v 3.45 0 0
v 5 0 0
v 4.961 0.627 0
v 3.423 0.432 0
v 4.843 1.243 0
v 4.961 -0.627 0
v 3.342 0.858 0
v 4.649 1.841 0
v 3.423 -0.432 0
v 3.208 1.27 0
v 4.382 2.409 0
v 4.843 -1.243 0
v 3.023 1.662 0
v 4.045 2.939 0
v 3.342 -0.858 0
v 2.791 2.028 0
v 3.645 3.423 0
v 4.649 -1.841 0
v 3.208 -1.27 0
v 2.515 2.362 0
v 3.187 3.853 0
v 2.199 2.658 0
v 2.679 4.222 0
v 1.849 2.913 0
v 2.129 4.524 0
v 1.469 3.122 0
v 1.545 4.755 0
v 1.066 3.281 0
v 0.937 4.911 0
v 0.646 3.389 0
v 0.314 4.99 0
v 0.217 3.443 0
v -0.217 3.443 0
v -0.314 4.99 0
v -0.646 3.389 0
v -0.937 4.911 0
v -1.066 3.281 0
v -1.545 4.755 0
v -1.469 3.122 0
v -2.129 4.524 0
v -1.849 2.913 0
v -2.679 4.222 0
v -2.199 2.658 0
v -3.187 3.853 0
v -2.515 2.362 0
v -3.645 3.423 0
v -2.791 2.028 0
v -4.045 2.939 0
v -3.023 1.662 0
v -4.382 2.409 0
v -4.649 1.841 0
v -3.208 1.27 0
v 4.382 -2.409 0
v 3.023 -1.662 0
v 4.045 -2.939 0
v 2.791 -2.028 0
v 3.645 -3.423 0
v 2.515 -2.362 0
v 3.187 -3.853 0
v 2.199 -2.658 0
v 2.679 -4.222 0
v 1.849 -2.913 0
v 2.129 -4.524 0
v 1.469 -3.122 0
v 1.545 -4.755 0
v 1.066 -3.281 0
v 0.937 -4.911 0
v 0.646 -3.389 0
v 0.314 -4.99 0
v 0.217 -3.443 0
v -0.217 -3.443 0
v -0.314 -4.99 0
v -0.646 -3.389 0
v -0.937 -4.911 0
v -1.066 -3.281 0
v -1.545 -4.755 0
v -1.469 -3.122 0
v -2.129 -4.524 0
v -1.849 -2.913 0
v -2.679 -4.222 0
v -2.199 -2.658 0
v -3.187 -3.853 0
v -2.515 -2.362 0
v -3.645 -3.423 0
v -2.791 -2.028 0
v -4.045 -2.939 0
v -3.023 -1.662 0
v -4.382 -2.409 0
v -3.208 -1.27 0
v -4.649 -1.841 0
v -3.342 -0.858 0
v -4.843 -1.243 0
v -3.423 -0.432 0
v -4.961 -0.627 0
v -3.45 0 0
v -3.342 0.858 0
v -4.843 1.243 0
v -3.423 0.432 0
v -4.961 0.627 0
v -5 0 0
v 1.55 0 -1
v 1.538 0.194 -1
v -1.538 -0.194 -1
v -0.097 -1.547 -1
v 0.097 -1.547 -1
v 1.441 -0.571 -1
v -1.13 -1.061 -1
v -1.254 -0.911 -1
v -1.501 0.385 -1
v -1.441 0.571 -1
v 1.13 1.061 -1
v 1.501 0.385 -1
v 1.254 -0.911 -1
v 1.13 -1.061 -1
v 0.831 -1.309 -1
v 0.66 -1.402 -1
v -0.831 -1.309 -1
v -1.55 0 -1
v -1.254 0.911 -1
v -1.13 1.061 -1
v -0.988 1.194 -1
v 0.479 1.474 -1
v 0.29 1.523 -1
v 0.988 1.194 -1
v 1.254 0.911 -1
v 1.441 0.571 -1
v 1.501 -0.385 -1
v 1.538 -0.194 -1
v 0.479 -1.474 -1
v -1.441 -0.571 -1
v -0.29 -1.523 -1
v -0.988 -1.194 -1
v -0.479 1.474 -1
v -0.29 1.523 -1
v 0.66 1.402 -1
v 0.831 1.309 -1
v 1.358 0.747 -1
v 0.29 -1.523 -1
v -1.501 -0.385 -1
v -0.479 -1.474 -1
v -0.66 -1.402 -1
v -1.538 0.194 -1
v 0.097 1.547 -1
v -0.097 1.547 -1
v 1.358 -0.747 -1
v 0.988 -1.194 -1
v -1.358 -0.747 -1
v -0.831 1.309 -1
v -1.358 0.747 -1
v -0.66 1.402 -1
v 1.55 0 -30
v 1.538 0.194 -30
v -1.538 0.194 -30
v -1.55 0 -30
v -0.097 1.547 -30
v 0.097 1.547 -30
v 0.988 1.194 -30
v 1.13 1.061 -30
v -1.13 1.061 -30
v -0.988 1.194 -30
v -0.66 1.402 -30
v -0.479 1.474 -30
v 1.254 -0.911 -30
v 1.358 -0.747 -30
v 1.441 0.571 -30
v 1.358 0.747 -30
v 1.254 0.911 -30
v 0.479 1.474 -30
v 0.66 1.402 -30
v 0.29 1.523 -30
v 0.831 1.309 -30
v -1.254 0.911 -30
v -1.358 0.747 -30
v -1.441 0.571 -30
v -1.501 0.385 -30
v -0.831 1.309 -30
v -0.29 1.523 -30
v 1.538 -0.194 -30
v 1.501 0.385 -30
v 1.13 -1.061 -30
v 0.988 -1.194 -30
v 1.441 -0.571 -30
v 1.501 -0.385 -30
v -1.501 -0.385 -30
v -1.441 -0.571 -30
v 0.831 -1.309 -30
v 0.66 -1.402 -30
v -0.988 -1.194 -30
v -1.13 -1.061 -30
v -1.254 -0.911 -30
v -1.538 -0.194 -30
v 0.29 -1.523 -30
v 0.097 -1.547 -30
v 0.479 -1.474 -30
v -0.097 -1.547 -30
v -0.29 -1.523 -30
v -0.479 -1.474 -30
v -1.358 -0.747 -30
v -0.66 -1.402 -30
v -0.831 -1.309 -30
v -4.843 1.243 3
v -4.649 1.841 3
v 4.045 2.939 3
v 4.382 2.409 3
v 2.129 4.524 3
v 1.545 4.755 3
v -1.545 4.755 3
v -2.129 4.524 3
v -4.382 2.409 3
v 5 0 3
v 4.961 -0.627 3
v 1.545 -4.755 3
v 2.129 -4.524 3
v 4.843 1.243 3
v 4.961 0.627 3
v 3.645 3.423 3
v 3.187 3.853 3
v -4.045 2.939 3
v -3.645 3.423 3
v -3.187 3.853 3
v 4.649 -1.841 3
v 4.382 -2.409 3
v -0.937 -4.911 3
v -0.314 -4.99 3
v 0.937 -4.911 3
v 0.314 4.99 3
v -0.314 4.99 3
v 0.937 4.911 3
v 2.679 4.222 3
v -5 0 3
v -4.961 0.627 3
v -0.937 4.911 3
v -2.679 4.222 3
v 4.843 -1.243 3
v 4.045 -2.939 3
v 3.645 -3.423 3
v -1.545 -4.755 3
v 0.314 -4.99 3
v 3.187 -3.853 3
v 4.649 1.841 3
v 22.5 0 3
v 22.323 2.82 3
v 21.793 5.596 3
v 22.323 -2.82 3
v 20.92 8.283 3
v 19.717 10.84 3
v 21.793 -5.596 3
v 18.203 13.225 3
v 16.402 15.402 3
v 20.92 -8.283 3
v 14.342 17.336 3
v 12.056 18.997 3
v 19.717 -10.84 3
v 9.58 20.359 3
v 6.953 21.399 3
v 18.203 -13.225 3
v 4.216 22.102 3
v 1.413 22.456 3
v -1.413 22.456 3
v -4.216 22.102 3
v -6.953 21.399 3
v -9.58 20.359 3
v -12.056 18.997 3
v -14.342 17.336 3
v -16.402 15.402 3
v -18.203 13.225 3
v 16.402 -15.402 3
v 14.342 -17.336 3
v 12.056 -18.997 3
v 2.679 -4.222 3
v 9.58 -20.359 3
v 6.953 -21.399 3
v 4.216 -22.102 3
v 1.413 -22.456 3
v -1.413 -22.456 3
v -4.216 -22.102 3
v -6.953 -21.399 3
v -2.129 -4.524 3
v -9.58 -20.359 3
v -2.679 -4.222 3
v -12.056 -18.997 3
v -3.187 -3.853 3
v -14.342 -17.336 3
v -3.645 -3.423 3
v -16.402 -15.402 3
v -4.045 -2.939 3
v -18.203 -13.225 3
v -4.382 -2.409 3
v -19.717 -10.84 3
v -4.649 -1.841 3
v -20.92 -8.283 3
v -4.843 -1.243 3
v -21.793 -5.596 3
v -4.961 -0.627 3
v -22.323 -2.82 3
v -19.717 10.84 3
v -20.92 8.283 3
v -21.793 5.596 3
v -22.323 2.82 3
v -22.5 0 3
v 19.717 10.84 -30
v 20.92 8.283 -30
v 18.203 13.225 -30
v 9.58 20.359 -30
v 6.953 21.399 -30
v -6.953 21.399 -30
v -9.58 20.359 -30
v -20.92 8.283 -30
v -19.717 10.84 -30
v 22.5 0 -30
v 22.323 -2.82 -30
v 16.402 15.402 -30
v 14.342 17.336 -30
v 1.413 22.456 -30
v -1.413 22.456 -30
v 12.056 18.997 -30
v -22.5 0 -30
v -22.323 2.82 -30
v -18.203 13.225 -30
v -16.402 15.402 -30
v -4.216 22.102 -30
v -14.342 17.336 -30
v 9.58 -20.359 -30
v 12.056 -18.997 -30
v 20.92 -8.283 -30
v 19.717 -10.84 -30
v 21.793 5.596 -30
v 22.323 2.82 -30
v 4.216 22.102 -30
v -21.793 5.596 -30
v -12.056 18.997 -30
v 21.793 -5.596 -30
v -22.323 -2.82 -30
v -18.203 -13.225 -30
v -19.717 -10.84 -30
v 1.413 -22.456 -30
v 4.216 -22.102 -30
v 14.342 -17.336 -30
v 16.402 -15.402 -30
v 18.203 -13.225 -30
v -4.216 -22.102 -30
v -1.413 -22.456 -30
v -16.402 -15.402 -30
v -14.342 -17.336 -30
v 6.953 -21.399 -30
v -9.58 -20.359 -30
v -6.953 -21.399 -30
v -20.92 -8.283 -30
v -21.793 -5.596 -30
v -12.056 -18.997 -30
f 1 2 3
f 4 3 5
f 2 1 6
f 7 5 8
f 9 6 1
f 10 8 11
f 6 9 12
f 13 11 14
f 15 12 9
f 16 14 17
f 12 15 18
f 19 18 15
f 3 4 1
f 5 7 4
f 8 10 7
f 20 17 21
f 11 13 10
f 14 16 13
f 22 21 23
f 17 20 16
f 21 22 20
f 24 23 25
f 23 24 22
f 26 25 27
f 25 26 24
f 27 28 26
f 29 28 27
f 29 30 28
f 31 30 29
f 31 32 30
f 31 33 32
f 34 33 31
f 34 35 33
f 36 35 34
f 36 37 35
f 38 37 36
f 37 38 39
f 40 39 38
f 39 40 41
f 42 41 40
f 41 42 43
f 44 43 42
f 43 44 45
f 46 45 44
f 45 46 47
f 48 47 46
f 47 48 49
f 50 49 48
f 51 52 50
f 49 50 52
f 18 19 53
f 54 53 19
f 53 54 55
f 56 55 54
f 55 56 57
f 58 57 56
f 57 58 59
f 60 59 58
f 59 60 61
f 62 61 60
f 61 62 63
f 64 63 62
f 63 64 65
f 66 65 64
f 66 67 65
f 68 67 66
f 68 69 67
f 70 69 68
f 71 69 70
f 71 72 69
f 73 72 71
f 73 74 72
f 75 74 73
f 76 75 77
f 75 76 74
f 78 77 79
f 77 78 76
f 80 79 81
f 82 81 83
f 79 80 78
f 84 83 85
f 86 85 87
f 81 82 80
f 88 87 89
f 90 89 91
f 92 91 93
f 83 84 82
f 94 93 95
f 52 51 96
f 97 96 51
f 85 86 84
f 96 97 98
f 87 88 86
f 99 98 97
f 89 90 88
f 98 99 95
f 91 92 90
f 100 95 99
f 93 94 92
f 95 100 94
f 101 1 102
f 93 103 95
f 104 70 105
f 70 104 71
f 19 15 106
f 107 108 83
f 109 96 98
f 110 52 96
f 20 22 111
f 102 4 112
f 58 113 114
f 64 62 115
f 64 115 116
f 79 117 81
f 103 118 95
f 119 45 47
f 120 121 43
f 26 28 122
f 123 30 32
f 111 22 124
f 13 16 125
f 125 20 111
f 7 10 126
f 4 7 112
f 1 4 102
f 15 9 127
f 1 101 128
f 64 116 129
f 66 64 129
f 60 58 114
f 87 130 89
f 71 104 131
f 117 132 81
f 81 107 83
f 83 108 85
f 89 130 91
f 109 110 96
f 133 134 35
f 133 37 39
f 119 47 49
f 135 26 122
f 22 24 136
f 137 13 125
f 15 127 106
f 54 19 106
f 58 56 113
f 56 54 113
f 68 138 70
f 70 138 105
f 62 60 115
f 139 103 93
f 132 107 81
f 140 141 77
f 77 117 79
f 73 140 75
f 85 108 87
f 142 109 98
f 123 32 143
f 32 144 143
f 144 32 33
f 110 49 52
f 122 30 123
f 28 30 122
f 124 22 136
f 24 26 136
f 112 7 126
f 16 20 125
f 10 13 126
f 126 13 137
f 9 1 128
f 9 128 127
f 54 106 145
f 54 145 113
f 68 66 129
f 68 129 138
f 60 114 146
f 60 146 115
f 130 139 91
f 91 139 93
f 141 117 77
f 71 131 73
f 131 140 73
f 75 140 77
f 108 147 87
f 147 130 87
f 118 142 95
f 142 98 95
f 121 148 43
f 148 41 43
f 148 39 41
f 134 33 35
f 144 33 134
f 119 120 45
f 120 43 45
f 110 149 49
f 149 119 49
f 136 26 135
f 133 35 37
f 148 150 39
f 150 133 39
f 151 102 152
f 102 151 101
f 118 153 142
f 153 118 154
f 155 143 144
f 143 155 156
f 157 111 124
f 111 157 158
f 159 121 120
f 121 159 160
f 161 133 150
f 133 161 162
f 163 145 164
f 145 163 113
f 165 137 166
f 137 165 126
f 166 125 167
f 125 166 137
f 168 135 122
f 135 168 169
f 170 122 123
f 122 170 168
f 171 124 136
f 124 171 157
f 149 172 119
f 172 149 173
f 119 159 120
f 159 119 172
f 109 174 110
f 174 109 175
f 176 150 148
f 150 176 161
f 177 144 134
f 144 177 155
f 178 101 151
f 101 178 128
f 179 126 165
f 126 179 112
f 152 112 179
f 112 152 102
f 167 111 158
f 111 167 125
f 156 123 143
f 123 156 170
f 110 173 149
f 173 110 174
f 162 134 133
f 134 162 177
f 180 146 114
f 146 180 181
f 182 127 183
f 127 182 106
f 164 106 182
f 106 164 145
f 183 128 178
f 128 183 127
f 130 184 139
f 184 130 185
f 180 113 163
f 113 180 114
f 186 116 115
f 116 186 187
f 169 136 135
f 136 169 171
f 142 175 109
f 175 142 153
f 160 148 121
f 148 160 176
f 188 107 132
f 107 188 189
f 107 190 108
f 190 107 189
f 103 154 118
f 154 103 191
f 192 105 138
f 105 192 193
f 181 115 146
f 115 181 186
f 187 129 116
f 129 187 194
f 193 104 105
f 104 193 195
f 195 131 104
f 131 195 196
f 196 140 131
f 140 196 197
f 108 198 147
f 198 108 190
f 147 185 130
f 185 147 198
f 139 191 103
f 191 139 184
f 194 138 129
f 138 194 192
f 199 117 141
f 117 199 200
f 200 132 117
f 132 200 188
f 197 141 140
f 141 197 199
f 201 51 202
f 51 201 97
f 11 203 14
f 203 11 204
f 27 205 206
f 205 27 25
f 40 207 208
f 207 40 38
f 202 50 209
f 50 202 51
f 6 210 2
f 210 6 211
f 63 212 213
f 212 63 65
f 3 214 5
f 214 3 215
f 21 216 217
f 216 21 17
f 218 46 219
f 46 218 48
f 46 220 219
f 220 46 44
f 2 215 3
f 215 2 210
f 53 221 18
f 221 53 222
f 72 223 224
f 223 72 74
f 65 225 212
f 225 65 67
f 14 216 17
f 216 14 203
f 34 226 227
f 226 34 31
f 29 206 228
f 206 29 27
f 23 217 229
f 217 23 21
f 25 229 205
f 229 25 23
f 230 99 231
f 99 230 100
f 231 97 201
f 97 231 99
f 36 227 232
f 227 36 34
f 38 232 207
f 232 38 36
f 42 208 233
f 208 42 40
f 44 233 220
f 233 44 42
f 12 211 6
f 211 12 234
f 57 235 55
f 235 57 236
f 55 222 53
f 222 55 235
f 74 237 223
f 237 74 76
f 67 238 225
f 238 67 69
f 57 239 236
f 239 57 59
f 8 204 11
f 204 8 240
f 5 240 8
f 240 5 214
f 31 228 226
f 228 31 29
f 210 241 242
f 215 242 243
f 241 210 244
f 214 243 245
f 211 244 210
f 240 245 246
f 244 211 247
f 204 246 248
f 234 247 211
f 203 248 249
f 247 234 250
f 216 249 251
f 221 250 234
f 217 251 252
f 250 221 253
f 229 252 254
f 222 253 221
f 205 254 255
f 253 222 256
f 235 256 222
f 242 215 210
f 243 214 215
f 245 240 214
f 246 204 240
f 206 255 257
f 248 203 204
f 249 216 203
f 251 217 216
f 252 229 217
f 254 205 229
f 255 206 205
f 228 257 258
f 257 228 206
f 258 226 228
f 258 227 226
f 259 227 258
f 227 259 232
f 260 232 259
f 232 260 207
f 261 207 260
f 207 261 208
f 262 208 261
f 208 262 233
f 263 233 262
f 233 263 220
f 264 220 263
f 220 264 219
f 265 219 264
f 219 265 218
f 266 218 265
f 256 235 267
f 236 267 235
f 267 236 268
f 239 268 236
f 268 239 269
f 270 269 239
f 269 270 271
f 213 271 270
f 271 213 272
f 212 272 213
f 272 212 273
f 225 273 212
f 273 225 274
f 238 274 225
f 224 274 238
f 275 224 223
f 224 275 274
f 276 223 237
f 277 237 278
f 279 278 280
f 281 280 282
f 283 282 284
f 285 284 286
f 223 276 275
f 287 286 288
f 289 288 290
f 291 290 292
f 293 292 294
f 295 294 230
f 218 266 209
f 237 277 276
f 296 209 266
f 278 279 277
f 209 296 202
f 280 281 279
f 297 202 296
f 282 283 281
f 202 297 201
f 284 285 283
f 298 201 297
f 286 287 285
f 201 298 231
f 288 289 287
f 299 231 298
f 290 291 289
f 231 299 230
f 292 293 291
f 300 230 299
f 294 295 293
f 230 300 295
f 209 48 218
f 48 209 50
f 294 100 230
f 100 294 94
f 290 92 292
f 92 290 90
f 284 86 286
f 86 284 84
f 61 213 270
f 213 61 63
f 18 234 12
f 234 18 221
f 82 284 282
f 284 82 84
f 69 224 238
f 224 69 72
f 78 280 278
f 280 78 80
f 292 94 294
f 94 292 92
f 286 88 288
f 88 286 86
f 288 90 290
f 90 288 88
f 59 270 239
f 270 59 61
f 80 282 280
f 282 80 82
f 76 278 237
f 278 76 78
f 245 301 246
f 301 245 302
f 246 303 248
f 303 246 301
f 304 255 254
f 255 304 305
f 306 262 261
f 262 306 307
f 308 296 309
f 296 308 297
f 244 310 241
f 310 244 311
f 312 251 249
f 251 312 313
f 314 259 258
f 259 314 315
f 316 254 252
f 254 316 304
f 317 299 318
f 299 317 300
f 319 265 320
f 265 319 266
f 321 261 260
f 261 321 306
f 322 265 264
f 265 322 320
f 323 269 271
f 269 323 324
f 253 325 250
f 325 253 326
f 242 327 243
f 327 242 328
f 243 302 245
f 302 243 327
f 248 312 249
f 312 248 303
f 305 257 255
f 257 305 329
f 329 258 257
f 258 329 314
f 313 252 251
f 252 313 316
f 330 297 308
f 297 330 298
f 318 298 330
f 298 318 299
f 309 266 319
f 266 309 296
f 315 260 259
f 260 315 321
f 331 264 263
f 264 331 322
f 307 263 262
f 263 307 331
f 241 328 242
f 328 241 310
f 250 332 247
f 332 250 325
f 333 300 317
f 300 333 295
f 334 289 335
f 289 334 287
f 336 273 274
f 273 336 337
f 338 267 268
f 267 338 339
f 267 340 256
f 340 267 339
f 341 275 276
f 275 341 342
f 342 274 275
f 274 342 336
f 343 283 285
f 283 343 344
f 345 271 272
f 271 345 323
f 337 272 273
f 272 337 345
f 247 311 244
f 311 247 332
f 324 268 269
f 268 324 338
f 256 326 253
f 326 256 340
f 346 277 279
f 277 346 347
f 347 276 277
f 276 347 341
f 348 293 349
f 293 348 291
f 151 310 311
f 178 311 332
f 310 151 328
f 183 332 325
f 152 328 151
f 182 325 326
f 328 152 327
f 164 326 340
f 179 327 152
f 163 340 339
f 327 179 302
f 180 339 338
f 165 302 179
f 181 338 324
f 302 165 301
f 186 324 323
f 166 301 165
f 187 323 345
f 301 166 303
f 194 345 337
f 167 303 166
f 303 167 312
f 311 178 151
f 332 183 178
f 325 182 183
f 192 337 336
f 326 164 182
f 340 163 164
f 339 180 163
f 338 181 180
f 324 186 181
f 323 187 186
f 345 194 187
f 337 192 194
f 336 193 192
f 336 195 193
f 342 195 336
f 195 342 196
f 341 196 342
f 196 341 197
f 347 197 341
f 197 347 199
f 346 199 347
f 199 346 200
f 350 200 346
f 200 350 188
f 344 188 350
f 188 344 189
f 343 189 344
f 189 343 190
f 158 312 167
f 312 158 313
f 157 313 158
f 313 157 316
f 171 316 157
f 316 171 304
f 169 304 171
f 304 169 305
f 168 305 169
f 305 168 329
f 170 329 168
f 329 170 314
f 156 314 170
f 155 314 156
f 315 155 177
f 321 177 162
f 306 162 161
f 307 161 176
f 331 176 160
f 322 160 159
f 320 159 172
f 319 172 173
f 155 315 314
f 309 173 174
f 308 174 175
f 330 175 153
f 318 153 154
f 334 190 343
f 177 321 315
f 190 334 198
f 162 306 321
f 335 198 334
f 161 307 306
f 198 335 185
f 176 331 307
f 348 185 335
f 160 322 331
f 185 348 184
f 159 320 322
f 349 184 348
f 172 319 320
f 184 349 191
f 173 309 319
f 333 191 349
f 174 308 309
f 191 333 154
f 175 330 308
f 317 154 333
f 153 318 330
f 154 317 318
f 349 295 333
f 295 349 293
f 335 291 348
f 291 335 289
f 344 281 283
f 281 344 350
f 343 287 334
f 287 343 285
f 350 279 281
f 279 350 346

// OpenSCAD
$fn = 50;


difference() {
	union() {
		translate(v = [0, 0, -30.0000000000]) {
			cylinder(h = 33, r = 22.5000000000);
		}
	}
	union() {
		translate(v = [0, 0, 0]) {
			rotate(a = [0, 0, 0]) {
				difference() {
					union() {
						translate(v = [0, 0, -33.0000000000]) {
							cylinder(h = 33, r = 1.2500000000);
						}
						translate(v = [0, 0, -1.0000000000]) {
							cylinder(h = 1.0000000000, r1 = 1.5500000000, r2 = 3.4500000000);
						}
						translate(v = [0, 0, -33.0000000000]) {
							cylinder(h = 33, r = 1.5500000000);
						}
						translate(v = [0, 0, -33.0000000000]) {
							cylinder(h = 33, r = 1.2500000000);
						}
					}
					union();
				}
			}
		}
		#cylinder(h = 3, r = 5.0000000000);
	}
}
